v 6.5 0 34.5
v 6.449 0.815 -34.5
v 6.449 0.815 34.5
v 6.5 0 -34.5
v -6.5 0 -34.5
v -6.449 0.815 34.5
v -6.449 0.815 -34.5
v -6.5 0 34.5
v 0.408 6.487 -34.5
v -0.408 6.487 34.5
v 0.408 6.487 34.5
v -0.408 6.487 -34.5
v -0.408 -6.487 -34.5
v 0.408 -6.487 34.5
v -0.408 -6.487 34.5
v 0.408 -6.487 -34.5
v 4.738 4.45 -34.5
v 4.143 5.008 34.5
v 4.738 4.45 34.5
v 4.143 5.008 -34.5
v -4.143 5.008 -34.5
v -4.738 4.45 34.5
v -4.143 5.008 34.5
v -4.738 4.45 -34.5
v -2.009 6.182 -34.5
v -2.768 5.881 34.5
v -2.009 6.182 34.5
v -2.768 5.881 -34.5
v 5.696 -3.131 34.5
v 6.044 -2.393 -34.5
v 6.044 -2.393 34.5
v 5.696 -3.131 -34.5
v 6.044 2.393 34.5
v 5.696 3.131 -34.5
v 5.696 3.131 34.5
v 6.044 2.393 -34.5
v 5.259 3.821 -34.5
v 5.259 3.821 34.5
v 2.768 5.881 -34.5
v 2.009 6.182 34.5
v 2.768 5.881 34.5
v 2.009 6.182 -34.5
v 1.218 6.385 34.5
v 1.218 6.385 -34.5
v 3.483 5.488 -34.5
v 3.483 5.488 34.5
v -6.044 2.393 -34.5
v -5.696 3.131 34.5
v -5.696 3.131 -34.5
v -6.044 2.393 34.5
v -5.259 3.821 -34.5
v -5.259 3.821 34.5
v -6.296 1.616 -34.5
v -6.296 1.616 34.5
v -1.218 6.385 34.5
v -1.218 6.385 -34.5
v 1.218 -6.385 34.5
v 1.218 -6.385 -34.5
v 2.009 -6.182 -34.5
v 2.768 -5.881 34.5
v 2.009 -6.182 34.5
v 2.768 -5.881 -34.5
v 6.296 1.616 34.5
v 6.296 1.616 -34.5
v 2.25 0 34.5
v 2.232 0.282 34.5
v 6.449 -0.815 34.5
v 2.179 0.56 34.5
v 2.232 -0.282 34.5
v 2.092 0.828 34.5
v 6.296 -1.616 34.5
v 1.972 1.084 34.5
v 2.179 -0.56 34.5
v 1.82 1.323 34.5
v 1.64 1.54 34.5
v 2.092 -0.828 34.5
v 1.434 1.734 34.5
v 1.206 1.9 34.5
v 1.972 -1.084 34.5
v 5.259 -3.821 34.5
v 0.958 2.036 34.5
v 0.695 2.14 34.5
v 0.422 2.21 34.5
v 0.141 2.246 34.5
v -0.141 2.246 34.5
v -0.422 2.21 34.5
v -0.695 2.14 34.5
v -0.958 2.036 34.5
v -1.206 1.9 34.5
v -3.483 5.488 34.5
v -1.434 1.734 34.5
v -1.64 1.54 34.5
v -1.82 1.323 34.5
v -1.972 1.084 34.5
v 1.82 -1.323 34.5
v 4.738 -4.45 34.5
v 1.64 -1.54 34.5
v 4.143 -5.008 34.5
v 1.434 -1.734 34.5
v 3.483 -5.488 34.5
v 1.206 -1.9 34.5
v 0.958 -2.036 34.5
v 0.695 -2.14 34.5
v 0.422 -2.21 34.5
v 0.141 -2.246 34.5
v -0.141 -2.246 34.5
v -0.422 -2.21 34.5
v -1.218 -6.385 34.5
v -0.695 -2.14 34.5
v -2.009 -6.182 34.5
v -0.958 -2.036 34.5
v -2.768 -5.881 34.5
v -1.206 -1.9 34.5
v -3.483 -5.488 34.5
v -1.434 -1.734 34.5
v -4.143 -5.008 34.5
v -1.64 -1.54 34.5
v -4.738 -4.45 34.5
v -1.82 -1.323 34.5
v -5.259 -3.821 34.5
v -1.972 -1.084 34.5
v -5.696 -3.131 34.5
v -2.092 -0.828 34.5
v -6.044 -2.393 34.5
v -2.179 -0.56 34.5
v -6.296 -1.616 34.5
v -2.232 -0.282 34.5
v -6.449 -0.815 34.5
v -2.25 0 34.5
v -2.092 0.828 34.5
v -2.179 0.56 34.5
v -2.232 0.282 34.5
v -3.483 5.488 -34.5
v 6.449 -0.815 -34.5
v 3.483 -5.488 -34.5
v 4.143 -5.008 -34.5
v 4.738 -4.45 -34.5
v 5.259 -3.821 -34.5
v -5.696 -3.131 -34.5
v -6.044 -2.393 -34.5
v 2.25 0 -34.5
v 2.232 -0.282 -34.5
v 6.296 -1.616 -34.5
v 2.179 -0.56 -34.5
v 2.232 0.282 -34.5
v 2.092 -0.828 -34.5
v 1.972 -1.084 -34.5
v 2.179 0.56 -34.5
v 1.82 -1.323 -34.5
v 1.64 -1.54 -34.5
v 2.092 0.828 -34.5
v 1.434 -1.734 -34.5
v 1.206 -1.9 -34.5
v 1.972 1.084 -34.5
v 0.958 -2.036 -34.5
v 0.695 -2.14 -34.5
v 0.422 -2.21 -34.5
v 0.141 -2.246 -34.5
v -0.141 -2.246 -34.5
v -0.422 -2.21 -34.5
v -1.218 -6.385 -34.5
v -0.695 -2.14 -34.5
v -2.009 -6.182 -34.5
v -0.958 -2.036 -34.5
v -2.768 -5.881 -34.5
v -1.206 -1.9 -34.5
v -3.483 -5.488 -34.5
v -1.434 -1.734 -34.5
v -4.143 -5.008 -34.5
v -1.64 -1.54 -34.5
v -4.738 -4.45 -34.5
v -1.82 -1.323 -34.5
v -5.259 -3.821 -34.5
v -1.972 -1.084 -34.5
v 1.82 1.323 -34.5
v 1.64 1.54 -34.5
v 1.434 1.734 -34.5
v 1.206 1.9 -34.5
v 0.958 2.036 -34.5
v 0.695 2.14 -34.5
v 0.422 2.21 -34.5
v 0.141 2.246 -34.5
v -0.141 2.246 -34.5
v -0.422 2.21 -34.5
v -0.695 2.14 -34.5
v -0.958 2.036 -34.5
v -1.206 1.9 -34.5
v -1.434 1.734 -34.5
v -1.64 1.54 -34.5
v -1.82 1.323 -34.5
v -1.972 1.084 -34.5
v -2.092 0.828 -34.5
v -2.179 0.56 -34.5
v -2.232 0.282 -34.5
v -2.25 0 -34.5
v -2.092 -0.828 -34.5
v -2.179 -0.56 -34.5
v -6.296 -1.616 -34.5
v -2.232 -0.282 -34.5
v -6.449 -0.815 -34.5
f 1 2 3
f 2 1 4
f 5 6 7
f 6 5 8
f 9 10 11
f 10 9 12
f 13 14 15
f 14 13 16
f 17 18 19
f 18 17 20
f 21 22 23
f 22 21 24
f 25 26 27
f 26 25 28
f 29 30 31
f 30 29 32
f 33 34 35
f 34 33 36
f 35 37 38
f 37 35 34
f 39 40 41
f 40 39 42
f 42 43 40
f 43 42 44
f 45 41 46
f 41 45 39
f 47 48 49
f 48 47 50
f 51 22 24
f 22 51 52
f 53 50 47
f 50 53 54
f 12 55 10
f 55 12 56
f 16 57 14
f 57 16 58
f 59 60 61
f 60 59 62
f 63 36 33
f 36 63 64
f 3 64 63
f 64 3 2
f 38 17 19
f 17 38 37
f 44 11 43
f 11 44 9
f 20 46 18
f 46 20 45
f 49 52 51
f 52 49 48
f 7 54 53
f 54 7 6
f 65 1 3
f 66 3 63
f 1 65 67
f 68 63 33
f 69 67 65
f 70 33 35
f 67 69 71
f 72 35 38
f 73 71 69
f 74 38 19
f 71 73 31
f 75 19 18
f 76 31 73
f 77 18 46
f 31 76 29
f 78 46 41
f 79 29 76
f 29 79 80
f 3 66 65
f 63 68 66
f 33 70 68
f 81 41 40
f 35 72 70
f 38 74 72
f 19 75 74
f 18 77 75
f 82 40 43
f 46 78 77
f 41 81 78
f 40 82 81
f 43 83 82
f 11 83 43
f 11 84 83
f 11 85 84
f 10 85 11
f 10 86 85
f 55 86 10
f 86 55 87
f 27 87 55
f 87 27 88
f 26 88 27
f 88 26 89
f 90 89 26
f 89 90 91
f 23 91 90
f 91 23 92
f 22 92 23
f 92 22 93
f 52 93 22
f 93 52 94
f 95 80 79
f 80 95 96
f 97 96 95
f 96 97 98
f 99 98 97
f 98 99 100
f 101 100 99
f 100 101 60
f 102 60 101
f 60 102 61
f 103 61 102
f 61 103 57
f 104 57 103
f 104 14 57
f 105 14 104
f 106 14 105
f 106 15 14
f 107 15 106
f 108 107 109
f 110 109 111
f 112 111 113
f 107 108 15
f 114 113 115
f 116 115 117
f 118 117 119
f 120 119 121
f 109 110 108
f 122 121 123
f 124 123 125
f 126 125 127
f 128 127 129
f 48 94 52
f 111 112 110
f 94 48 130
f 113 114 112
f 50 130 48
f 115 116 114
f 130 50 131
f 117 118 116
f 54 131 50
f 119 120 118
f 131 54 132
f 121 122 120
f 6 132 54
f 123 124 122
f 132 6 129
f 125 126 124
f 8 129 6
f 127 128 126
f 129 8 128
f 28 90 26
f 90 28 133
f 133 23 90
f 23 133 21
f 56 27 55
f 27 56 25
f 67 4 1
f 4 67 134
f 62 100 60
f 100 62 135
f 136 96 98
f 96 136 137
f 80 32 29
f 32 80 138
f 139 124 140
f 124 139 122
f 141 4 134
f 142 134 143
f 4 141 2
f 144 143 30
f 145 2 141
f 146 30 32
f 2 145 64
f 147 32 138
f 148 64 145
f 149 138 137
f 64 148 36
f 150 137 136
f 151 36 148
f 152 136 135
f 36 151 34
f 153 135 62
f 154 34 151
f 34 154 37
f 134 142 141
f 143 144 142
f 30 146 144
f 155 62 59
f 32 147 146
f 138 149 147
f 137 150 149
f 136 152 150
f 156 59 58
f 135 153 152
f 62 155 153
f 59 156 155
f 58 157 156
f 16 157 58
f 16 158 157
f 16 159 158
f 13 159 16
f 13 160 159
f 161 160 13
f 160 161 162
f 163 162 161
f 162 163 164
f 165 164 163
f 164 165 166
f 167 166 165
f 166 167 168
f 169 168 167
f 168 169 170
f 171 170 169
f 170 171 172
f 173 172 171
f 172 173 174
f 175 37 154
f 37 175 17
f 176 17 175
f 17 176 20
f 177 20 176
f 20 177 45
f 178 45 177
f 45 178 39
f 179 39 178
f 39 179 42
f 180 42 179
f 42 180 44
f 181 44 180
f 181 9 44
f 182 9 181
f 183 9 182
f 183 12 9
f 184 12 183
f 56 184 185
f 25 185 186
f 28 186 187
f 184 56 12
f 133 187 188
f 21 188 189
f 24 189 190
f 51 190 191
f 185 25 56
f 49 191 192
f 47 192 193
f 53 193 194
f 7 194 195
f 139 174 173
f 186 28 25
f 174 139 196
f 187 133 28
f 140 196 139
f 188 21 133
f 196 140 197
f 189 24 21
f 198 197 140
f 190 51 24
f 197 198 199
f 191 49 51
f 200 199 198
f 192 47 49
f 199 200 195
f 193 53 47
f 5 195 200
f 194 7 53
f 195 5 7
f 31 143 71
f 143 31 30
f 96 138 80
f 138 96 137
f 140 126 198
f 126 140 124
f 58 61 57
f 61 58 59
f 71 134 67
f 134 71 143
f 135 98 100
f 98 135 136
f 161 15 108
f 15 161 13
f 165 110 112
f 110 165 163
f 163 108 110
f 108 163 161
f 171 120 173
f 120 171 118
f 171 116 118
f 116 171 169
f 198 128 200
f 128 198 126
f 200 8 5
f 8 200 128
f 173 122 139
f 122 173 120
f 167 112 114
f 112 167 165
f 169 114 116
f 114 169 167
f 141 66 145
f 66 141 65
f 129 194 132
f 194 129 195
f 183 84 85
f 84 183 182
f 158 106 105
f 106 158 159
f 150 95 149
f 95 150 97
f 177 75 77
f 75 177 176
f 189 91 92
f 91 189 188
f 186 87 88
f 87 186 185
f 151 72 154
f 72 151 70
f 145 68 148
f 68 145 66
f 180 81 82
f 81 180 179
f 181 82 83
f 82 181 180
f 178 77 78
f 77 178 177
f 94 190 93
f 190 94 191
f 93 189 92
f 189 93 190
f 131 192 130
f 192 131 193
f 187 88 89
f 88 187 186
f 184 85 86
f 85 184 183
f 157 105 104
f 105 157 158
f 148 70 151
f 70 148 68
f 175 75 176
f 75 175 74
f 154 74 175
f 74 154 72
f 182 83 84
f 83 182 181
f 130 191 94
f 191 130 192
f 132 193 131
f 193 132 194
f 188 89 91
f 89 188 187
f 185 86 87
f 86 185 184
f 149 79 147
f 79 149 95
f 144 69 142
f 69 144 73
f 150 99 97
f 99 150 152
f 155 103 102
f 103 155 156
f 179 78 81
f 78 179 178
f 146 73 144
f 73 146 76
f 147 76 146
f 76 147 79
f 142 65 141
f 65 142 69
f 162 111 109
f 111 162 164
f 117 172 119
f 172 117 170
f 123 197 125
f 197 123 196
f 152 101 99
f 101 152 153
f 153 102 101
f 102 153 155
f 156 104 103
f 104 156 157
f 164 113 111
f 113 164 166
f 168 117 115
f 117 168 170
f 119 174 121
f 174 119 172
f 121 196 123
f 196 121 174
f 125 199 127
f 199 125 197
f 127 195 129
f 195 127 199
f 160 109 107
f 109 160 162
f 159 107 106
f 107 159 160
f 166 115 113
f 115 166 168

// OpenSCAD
$fn = 50;


difference() {
	union() {
		translate(v = [0, 0, -34.5000000000]) {
			cylinder(h = 69, r = 6.5000000000);
		}
	}
	union() {
		translate(v = [0, 0, -100.0000000000]) {
			cylinder(h = 200, r = 2.2500000000);
		}
	}
}
